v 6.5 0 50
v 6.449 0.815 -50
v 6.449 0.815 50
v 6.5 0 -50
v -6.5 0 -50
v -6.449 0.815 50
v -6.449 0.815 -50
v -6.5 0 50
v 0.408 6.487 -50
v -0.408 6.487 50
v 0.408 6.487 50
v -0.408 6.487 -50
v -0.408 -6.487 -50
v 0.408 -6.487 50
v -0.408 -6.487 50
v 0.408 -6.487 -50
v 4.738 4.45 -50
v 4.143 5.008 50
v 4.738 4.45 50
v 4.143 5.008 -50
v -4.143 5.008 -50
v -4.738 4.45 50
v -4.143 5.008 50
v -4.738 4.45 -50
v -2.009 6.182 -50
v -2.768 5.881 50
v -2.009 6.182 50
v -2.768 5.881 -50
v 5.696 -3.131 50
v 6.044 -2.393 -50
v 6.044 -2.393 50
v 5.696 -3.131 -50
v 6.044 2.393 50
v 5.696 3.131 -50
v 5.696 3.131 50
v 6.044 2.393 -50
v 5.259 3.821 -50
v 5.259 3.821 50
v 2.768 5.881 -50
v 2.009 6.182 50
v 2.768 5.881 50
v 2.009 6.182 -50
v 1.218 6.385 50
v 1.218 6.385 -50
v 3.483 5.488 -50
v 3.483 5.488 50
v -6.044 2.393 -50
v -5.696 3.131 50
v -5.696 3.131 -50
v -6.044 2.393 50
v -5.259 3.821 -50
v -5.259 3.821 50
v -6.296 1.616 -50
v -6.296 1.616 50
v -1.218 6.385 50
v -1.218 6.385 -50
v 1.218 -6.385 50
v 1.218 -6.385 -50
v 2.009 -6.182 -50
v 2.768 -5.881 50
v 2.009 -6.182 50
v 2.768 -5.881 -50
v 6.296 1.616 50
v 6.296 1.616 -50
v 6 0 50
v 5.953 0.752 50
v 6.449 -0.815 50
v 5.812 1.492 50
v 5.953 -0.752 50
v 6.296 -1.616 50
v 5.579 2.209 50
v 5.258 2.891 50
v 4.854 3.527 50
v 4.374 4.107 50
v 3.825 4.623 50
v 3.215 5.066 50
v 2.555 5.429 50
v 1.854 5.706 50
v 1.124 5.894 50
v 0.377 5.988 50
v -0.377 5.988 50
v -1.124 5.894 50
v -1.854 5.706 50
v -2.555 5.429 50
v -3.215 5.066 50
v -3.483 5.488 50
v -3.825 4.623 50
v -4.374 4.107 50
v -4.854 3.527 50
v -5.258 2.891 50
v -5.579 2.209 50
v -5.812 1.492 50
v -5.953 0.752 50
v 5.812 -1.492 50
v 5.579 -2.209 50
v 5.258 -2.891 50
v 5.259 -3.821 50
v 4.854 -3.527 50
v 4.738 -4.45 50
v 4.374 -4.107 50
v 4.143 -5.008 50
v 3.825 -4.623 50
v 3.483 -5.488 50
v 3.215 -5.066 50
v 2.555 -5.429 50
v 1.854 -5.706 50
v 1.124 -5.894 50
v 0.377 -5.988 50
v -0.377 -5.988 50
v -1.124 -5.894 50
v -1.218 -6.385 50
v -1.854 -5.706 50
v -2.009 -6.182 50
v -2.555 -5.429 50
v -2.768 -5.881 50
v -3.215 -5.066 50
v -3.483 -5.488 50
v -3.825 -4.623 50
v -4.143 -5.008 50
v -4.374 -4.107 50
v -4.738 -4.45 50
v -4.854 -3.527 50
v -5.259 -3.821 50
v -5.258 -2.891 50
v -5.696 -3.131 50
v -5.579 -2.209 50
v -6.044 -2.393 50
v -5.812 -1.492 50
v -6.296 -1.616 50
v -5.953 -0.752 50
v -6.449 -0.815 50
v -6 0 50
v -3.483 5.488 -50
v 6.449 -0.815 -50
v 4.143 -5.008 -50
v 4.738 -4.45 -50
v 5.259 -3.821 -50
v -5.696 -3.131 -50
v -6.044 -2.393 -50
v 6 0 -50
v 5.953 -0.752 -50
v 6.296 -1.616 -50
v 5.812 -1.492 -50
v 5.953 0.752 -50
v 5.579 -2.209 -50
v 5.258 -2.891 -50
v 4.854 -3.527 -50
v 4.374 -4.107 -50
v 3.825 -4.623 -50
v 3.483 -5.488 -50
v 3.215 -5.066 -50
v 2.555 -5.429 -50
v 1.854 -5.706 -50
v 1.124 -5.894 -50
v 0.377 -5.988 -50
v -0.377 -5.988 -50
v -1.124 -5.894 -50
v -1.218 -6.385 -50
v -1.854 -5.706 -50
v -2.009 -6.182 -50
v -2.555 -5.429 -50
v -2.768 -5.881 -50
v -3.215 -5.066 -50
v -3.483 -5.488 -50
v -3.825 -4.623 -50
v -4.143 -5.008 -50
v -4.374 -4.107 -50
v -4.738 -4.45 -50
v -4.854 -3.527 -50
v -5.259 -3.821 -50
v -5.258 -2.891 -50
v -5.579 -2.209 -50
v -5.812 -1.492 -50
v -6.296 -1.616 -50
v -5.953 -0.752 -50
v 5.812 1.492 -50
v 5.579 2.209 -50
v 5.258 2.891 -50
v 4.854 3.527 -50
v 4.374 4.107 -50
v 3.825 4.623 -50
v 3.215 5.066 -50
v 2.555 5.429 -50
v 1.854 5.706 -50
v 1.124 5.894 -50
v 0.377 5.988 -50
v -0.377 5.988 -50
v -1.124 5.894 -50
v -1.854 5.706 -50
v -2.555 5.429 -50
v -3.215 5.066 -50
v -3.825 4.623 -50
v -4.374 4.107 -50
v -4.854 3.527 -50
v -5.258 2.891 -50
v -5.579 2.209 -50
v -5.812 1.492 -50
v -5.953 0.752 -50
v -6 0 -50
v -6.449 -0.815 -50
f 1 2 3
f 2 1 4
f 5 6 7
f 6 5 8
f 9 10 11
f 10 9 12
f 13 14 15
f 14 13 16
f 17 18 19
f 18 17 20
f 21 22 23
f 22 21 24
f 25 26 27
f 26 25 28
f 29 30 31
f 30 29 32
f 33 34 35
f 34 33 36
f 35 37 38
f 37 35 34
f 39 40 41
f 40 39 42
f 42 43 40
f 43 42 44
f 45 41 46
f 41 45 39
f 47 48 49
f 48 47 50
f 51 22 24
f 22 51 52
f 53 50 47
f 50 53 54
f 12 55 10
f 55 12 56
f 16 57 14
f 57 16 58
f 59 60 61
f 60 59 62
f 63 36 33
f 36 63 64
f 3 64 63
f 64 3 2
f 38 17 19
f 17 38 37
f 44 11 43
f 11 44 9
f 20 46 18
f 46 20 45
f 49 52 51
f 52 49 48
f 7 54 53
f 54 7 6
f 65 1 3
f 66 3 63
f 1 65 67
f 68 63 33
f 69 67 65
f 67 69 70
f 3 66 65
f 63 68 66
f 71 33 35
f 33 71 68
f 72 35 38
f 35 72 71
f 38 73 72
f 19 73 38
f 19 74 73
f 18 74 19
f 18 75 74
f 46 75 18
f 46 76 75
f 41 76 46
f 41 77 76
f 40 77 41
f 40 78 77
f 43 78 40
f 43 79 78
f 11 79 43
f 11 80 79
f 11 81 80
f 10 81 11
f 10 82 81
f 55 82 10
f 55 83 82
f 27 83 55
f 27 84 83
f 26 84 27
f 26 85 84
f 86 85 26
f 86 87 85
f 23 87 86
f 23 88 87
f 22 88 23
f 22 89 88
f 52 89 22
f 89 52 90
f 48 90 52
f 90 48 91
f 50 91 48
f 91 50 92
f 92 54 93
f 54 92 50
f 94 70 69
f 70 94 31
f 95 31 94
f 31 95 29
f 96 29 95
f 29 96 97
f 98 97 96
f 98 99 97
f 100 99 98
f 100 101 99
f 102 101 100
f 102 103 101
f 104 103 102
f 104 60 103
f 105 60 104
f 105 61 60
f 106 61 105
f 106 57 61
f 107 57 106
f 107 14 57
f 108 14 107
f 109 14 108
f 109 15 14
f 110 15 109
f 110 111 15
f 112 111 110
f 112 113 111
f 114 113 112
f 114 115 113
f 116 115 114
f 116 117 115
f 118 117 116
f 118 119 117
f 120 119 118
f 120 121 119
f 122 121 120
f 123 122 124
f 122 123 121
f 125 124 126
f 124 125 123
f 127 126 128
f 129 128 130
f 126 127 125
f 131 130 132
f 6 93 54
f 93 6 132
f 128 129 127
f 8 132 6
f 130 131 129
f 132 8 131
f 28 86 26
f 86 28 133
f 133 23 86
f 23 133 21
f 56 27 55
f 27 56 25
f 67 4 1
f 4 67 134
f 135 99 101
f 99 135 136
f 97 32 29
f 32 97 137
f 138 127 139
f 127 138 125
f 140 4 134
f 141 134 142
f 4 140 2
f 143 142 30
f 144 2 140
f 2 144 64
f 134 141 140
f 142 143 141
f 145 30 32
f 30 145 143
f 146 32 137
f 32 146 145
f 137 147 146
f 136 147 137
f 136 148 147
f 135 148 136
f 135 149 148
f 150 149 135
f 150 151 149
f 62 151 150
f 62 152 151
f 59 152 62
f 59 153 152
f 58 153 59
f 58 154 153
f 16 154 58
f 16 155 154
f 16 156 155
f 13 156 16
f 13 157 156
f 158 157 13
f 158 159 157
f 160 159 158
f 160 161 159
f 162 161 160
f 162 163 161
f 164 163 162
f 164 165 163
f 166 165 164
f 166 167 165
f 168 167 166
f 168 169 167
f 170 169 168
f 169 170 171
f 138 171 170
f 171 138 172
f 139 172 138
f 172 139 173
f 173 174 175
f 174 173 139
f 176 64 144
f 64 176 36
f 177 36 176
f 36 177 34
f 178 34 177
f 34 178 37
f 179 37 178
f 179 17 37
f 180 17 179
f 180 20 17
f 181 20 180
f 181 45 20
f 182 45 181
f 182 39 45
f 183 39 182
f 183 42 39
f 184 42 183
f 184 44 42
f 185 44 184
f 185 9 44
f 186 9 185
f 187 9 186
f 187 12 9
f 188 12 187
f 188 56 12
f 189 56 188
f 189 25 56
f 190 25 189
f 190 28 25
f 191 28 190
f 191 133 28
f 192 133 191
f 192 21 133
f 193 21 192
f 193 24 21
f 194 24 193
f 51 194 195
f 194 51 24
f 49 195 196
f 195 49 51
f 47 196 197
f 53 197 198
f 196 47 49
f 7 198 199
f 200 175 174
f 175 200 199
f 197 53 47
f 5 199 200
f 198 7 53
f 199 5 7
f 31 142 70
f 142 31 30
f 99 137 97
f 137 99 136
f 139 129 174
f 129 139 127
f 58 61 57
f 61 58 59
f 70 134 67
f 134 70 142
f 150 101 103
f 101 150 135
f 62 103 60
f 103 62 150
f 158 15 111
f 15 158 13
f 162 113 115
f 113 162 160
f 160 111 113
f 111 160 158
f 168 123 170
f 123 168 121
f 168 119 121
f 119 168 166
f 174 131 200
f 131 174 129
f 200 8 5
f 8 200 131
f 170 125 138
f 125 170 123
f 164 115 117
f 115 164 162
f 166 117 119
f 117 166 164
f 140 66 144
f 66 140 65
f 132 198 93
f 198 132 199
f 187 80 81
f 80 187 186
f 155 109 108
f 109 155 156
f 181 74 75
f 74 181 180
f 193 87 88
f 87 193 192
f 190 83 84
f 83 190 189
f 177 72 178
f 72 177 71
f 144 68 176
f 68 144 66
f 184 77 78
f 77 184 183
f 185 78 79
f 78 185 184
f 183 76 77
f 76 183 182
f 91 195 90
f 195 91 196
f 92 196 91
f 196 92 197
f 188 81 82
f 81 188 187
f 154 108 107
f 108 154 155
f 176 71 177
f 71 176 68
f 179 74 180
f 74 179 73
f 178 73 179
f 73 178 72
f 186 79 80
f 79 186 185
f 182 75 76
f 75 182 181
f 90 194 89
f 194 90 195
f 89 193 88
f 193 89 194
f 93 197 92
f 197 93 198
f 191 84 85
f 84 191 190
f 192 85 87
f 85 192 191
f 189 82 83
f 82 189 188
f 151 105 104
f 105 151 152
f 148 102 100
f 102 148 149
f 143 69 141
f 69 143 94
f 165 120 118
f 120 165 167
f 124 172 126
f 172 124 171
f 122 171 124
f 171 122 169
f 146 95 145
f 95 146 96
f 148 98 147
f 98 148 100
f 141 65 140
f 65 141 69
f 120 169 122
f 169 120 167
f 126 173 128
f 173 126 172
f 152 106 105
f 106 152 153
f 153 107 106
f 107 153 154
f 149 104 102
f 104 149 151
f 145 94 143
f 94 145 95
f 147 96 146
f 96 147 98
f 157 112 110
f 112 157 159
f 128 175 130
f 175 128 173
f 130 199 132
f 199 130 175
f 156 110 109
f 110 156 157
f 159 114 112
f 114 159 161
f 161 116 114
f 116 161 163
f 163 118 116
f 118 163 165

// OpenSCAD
$fn = 50;


difference() {
	union() {
		translate(v = [0, 0, -50.0000000000]) {
			cylinder(h = 100, r = 6.5000000000);
		}
	}
	union() {
		translate(v = [0, 0, -100.0000000000]) {
			cylinder(h = 200, r = 6);
		}
	}
}
